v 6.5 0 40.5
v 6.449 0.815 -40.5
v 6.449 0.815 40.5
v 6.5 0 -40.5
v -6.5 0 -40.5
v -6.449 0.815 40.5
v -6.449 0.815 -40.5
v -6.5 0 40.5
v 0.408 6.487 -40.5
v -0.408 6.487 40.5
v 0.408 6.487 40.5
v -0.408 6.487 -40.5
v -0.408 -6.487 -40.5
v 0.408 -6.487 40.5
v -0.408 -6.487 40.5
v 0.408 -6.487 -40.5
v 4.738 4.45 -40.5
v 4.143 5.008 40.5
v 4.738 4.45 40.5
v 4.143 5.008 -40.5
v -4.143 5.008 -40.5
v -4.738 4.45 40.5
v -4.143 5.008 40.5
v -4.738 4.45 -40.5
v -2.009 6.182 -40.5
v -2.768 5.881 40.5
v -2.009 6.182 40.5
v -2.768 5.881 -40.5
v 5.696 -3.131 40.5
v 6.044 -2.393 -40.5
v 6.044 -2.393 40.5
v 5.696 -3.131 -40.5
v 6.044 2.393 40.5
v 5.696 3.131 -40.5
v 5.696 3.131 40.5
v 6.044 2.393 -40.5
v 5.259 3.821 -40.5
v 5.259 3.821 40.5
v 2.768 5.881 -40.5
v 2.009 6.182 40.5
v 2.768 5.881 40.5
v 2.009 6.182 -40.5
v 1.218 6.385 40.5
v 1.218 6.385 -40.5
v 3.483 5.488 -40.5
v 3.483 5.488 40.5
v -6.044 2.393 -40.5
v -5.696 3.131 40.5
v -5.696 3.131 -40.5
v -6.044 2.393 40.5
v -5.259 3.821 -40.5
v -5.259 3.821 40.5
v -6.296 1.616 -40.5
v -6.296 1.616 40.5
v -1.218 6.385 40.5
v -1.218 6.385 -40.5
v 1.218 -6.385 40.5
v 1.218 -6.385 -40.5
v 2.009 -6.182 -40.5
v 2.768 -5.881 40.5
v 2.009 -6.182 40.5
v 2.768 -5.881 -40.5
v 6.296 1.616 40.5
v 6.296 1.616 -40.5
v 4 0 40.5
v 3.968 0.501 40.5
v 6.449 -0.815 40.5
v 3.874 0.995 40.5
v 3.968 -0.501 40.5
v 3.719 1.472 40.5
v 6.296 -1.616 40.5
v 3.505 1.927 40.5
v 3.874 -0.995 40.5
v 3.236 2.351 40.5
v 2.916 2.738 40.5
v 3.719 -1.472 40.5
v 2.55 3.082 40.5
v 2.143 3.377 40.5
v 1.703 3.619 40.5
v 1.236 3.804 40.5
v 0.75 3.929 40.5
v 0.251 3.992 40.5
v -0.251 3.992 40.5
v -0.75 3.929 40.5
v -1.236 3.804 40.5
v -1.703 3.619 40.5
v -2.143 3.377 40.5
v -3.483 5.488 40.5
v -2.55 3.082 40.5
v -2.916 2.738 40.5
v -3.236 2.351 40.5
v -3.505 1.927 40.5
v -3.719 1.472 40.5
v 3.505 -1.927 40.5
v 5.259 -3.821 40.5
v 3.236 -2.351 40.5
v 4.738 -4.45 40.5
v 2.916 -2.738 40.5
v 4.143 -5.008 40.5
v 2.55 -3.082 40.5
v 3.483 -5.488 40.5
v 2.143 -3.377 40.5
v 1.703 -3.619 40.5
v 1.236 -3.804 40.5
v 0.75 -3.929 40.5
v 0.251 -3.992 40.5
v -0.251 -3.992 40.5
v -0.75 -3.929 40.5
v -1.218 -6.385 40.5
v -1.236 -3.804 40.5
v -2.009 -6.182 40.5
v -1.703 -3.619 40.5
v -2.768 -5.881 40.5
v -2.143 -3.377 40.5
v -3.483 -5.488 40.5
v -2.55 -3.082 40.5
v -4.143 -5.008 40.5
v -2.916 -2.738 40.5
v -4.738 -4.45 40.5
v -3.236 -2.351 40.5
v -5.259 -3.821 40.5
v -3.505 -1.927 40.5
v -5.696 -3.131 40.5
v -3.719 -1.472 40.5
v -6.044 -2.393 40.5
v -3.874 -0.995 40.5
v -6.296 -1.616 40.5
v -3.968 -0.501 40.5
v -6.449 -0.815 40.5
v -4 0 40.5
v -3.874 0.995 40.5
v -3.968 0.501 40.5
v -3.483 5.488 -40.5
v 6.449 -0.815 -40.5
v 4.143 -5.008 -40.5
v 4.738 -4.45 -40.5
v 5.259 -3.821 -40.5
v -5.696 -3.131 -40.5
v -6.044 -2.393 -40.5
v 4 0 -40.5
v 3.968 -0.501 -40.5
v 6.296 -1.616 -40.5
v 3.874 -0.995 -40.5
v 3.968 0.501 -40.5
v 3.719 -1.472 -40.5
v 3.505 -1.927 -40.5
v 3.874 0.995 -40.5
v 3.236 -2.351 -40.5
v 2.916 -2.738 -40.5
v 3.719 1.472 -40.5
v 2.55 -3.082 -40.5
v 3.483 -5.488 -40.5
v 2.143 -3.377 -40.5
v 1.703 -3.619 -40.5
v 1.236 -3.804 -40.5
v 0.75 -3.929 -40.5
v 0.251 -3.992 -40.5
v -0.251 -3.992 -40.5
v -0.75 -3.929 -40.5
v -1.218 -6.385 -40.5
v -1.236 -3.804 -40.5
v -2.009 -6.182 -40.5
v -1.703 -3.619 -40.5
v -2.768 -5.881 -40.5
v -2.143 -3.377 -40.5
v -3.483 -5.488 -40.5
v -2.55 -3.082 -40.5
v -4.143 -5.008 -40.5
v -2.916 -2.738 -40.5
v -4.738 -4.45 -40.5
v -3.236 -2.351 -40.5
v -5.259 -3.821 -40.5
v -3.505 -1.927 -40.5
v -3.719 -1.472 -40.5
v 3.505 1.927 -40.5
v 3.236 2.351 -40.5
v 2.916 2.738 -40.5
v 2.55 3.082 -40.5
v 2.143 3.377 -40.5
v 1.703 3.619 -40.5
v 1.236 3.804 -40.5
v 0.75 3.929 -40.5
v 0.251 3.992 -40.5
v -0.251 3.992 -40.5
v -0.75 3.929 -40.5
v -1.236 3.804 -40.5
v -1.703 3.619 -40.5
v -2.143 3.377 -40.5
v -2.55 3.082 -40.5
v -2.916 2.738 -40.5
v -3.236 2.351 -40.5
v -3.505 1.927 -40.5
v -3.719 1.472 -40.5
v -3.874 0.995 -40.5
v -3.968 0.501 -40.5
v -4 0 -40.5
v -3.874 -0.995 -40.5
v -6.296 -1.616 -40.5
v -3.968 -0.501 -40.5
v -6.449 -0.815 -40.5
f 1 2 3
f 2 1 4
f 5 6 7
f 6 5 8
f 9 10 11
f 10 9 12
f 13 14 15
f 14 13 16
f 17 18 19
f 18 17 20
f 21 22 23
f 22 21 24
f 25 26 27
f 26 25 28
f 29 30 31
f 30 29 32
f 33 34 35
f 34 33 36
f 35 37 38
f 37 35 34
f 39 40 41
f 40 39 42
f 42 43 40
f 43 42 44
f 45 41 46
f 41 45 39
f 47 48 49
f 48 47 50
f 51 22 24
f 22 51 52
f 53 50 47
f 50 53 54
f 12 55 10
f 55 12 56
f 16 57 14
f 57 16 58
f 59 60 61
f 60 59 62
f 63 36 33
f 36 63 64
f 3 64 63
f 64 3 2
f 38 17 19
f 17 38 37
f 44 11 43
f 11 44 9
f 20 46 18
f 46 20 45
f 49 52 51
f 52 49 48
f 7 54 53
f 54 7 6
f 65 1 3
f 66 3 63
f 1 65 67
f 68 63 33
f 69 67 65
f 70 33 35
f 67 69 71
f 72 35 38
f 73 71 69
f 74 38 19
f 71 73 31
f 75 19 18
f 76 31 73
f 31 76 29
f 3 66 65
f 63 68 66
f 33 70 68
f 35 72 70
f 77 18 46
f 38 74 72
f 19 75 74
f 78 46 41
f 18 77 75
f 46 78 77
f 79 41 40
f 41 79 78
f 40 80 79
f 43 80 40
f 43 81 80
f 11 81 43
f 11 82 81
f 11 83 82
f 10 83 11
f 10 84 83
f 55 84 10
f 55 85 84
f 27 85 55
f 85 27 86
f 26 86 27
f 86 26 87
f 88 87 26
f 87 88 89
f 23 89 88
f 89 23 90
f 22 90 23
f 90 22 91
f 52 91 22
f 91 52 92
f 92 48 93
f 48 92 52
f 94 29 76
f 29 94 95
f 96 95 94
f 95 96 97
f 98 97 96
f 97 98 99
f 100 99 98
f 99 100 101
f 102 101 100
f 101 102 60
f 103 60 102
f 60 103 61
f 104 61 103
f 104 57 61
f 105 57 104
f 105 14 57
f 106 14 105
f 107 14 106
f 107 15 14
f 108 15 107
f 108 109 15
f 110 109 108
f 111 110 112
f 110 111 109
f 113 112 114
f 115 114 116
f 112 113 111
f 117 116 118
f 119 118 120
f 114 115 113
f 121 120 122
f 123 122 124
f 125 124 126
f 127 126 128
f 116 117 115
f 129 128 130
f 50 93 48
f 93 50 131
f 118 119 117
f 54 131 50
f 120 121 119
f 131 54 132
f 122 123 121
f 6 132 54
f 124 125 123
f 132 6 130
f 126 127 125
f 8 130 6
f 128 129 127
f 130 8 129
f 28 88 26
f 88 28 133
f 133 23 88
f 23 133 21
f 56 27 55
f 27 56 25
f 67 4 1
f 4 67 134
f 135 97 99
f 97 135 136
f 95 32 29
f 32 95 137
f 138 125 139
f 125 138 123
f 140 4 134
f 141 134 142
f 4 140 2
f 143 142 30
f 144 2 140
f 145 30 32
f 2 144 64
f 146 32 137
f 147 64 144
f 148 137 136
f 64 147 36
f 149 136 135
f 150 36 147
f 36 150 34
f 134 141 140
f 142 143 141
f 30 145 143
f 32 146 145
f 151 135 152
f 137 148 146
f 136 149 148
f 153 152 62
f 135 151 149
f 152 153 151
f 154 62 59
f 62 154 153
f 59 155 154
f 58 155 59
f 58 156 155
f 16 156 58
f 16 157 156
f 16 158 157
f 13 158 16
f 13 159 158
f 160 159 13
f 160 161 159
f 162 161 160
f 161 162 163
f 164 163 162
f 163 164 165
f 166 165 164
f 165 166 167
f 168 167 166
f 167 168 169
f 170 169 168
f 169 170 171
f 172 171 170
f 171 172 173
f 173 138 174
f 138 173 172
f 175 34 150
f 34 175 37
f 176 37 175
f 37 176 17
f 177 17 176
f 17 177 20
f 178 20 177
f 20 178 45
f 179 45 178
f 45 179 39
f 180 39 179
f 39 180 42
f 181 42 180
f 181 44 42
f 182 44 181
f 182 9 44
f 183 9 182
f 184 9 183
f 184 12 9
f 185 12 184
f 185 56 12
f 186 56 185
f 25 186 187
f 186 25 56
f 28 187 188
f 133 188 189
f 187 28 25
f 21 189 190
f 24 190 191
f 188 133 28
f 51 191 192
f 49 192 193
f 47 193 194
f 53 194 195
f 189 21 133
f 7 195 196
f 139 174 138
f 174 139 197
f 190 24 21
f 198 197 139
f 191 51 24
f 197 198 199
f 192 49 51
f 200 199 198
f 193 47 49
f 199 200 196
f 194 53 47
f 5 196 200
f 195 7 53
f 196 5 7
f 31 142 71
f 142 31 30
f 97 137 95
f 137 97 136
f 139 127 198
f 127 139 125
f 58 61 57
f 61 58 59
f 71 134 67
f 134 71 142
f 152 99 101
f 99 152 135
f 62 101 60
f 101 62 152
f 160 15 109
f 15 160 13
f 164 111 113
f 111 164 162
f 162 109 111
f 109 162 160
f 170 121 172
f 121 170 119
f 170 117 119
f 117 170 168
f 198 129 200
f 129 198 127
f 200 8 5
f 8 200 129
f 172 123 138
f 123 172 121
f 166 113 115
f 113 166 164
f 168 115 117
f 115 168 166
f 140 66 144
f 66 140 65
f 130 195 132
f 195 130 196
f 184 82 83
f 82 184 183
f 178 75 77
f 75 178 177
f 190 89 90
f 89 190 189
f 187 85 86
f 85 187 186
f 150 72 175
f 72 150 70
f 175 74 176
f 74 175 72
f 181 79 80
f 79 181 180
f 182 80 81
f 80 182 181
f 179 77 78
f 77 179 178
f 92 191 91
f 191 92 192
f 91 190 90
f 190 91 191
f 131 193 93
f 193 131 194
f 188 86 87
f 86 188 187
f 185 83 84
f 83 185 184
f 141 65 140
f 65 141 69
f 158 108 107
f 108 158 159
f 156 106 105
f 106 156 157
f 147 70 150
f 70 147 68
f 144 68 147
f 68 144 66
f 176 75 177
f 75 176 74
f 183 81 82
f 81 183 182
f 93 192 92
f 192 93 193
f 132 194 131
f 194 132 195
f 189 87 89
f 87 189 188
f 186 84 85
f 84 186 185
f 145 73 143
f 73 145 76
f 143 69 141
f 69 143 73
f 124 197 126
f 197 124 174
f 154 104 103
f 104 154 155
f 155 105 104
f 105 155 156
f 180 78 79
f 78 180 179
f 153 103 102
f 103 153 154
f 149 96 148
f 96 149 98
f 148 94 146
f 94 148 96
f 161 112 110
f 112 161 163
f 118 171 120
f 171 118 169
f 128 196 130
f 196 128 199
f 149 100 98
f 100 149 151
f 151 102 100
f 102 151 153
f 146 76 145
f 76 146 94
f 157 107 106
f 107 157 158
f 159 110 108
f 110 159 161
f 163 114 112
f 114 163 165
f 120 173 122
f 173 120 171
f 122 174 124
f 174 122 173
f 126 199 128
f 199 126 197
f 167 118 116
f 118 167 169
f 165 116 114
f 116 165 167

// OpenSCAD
$fn = 50;


difference() {
	union() {
		translate(v = [0, 0, -40.5000000000]) {
			cylinder(h = 81, r = 6.5000000000);
		}
	}
	union() {
		translate(v = [0, 0, -100.0000000000]) {
			cylinder(h = 200, r = 4);
		}
	}
}
